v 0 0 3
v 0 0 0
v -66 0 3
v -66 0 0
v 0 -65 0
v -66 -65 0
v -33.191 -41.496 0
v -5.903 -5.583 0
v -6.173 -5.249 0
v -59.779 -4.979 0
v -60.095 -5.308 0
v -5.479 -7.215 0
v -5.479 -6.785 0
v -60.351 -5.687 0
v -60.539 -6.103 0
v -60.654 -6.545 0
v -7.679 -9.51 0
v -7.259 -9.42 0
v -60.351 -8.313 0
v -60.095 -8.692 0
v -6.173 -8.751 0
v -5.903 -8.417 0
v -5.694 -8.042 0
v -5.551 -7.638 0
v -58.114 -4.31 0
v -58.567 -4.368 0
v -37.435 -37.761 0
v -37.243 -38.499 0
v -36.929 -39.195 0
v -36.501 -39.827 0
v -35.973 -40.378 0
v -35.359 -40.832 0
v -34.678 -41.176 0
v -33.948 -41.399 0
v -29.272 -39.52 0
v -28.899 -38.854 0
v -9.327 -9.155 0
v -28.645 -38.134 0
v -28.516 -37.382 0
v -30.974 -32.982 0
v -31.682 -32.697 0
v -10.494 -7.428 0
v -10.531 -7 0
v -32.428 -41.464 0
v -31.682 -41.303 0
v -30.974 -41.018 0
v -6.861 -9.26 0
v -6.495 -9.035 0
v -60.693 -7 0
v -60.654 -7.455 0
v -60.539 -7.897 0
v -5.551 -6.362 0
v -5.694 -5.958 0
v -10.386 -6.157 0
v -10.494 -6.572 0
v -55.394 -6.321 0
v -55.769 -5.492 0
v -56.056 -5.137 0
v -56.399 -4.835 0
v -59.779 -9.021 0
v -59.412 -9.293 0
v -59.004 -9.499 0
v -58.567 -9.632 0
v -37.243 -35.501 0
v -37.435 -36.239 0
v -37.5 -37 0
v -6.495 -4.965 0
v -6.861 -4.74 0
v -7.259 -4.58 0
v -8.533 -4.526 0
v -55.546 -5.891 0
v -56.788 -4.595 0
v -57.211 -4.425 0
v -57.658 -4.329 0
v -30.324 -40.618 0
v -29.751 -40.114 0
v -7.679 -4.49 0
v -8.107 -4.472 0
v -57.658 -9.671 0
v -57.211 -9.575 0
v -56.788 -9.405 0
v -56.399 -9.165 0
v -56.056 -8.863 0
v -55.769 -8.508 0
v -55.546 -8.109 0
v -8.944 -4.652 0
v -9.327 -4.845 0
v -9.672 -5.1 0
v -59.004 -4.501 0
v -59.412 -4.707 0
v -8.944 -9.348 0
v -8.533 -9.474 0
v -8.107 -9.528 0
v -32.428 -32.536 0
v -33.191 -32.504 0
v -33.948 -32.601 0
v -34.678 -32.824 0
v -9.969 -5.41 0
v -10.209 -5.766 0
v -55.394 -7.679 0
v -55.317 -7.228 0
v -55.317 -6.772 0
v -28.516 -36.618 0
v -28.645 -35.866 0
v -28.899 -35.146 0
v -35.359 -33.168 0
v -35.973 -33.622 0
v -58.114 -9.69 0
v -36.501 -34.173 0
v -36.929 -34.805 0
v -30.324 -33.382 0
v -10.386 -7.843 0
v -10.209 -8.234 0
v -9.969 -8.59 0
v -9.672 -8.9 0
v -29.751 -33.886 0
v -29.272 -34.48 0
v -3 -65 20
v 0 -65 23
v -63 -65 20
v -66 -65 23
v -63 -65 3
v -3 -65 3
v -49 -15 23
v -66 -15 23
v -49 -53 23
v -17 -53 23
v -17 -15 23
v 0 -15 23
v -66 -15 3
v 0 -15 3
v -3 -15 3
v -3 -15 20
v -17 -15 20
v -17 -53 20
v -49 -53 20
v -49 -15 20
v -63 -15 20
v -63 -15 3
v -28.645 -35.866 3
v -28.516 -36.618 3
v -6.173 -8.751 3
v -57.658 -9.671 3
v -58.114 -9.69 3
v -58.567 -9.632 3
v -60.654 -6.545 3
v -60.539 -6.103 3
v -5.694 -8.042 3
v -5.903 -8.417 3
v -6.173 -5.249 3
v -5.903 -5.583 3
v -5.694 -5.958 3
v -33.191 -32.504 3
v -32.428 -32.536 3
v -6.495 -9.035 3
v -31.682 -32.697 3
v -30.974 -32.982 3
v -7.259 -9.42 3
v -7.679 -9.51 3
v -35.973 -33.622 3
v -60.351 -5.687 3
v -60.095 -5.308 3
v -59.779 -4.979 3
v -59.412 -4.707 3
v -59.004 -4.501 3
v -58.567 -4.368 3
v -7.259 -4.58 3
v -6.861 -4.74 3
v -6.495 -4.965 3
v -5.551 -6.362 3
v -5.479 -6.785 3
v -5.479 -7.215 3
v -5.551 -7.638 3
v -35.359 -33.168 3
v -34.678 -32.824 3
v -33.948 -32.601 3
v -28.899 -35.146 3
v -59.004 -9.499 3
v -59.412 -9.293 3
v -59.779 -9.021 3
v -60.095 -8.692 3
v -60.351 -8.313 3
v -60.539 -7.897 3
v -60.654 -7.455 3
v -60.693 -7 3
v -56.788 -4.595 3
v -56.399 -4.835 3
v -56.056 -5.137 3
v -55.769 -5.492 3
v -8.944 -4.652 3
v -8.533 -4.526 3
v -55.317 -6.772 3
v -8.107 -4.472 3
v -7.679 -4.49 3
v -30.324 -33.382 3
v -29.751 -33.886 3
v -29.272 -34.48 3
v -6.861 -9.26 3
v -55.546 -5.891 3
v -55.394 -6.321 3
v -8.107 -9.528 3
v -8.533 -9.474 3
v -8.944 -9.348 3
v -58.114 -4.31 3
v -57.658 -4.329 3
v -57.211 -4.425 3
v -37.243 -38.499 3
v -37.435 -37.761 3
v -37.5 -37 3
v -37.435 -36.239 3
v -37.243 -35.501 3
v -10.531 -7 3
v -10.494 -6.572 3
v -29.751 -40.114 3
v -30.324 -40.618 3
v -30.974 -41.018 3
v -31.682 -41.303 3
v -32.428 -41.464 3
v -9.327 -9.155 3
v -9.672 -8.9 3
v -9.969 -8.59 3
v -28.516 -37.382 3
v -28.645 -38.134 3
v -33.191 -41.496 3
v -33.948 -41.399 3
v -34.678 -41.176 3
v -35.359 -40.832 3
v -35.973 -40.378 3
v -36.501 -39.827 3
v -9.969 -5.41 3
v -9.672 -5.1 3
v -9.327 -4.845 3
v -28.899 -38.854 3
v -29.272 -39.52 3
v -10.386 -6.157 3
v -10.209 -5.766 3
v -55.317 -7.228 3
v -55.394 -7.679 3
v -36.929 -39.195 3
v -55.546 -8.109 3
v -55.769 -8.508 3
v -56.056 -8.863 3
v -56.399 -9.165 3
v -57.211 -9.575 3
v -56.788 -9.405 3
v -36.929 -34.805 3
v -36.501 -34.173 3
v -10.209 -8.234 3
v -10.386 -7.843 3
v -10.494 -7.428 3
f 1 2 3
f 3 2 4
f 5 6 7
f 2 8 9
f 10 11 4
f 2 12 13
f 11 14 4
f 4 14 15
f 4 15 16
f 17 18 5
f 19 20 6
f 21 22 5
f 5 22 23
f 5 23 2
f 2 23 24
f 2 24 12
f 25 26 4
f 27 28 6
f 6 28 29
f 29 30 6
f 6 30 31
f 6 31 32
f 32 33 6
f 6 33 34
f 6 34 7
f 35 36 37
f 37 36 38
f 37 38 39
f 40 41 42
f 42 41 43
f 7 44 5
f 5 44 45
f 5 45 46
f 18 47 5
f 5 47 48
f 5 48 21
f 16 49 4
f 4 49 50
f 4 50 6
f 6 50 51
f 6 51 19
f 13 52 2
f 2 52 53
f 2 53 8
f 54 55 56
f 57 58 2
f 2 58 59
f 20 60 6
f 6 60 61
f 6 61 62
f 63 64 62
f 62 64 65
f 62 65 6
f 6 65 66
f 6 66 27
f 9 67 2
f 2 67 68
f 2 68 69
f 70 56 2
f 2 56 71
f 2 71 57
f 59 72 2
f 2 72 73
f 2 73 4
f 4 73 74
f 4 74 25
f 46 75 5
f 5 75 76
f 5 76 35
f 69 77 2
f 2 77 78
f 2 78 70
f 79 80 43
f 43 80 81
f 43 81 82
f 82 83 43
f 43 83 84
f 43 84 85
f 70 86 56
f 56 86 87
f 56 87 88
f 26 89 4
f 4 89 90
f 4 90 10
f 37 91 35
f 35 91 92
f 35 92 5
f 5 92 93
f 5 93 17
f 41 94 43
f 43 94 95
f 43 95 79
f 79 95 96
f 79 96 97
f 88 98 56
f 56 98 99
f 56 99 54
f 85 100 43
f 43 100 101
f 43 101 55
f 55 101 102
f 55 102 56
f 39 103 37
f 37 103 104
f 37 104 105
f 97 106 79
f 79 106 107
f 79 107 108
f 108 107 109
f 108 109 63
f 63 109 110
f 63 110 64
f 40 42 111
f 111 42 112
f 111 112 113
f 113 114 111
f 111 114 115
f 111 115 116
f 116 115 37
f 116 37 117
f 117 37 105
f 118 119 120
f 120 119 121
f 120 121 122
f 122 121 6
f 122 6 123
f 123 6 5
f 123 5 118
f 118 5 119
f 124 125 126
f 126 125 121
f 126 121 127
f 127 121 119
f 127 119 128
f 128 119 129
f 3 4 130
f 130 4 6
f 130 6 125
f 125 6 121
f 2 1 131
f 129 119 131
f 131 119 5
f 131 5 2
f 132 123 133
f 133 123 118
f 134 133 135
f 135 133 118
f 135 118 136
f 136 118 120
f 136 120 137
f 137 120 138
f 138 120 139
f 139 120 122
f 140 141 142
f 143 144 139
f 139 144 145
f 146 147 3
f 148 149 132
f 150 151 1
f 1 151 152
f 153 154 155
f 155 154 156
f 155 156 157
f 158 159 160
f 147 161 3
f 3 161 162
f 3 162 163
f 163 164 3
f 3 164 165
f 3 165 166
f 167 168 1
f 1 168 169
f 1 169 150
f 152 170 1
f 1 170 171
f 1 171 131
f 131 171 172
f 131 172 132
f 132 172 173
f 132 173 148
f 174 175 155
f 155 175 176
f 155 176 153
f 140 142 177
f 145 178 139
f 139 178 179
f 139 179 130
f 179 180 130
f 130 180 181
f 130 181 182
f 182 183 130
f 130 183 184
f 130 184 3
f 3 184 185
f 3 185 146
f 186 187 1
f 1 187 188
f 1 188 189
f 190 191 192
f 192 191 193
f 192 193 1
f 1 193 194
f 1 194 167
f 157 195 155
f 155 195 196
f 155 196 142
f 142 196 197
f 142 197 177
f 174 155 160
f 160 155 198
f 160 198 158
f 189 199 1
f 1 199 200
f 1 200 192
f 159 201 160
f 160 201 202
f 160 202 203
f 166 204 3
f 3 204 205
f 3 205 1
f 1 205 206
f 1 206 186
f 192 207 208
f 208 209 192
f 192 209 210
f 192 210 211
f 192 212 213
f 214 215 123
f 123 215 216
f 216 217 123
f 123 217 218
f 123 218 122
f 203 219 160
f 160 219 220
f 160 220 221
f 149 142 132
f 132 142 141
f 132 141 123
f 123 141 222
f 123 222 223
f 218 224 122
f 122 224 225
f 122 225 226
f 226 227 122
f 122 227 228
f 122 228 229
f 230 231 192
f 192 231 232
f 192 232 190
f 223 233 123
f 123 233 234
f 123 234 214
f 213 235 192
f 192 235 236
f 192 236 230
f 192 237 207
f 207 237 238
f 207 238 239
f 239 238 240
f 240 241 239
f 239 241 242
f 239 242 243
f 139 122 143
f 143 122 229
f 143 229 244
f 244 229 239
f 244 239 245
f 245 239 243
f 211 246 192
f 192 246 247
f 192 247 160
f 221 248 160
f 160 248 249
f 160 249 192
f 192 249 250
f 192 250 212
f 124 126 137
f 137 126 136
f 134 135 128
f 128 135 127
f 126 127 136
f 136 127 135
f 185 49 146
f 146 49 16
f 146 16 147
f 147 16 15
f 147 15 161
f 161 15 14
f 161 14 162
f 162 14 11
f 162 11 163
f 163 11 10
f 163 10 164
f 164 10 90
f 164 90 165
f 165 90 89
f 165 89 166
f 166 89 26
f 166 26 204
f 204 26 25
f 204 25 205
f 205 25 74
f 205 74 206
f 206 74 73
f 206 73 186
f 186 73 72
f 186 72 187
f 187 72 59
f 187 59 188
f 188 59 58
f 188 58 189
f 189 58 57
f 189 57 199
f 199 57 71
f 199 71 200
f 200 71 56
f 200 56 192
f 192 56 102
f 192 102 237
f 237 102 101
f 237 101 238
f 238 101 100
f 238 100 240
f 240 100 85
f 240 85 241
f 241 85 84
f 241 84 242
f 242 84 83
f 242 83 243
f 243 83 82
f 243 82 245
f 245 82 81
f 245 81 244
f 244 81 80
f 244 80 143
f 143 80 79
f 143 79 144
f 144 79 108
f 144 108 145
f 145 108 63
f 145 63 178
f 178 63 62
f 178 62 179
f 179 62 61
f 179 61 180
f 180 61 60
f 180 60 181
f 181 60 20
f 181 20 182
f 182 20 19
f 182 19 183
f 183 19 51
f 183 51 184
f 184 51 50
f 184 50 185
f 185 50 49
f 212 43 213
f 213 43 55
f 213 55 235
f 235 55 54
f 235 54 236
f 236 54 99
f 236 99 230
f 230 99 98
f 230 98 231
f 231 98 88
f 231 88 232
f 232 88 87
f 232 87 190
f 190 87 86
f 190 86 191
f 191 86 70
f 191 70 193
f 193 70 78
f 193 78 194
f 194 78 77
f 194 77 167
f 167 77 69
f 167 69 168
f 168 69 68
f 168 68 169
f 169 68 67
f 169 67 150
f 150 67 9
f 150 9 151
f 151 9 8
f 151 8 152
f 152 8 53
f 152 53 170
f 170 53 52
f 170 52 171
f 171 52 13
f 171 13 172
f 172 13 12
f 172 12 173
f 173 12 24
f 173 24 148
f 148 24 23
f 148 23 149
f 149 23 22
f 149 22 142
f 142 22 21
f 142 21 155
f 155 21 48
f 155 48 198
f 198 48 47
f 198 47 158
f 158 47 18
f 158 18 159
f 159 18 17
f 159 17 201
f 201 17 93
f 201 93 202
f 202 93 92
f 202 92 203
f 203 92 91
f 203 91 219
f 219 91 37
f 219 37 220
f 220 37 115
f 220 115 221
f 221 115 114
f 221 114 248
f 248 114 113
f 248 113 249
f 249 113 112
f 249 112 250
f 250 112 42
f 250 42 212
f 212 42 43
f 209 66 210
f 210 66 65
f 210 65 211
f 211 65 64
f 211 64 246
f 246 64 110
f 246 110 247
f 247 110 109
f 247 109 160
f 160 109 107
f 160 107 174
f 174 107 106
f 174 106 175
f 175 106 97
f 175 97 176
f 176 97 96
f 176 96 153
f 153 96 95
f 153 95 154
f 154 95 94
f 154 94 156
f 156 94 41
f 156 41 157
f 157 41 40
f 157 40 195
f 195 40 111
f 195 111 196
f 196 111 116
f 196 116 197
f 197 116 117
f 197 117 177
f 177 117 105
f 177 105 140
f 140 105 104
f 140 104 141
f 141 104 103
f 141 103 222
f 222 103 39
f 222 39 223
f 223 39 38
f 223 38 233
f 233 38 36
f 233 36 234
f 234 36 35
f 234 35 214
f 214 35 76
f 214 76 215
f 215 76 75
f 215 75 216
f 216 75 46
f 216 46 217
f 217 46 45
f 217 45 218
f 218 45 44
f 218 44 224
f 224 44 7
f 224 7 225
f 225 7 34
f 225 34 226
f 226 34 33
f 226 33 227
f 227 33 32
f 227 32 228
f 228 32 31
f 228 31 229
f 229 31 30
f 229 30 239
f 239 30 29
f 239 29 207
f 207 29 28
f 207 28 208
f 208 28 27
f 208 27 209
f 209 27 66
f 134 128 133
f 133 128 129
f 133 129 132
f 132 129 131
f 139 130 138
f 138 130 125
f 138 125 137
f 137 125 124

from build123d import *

# Parameters (mm, degrees)
SKETCH1_W           = 23
SKETCH1_H           = 65
BOSS_EXTRUDE1_DEPTH = 66
SKETCH2_W           = 60
SKETCH2_H           = 17
CUT_EXTRUDE1_DEPTH  = 66
CUT_EXTRUDE2_REACH  = 25
SKETCH3_W           = 32
SKETCH3_H           = 53
CUT_EXTRUDE3_REACH  = 25
SKETCH5_R           = 4.5
SKETCH5_R_2         = 2.530586218
SKETCH5_R_3         = 2.69284222
SKETCH6_W           = 17
SKETCH6_H           = 15
CUT_EXTRUDE4_DEPTH  = 20


with BuildPart() as part:
    # Sketch1 → Boss-Extrude1 (new body)
    with BuildSketch(Plane(origin=(0, 0, 0), x_dir=(0, 0, -1), z_dir=(1, 0, 0))):
        with Locations((-11.5, -32.5)):
            Rectangle(SKETCH1_W, SKETCH1_H)
    extrude(amount=-BOSS_EXTRUDE1_DEPTH)

    # Sketch2 → Cut-Extrude1 (cut, through all)
    with BuildSketch(Plane(origin=(0, 0, 0), x_dir=(1, 0, 0), z_dir=(0, 1, 0))):
        with Locations((-33, -11.5)):
            Rectangle(SKETCH2_W, SKETCH2_H)
    extrude(amount=-CUT_EXTRUDE1_DEPTH, mode=Mode.SUBTRACT)

    # Sketch3 → Cut-Extrude2 (cut, up to next)
    with BuildSketch(Plane.XY.offset(23), mode=Mode.PRIVATE) as cut_extrude2_sk1:
        with Locations((-33, -26.5)):
            Rectangle(SKETCH3_W, SKETCH3_H)
    cut_extrude2_tool1 = extrude(cut_extrude2_sk1.sketch, amount=-CUT_EXTRUDE2_REACH, mode=Mode.PRIVATE) & part.part
    add(cut_extrude2_tool1.solids().sort_by_distance((-33, -26.5, 23))[0], mode=Mode.SUBTRACT)

    # Sketch5 → Cut-Extrude3 (cut, up to next)
    with BuildSketch(Plane(origin=(0, 0, 0), x_dir=(-1, 0, 0), z_dir=(0, 0, -1)), mode=Mode.PRIVATE) as cut_extrude3_sk1:
        with Locations((33, -37)):
            Circle(SKETCH5_R)
    cut_extrude3_tool1 = extrude(cut_extrude3_sk1.sketch, amount=-CUT_EXTRUDE3_REACH, mode=Mode.PRIVATE) & part.part
    add(cut_extrude3_tool1.solids().sort_by_distance((-33, -37, 0))[0], mode=Mode.SUBTRACT)
    # Sketch5 → Cut-Extrude3 (cut, up to next)
    with BuildSketch(Plane(origin=(0, 0, 0), x_dir=(-1, 0, 0), z_dir=(0, 0, -1)), mode=Mode.PRIVATE) as cut_extrude3_sk2:
        with Locations((8, -7)):
            Circle(SKETCH5_R_2)
    cut_extrude3_tool2 = extrude(cut_extrude3_sk2.sketch, amount=-CUT_EXTRUDE3_REACH, mode=Mode.PRIVATE) & part.part
    add(cut_extrude3_tool2.solids().sort_by_distance((-8, -7, 0))[0], mode=Mode.SUBTRACT)
    # Sketch5 → Cut-Extrude3 (cut, up to next)
    with BuildSketch(Plane(origin=(0, 0, 0), x_dir=(-1, 0, 0), z_dir=(0, 0, -1)), mode=Mode.PRIVATE) as cut_extrude3_sk3:
        with Locations((58, -7)):
            Circle(SKETCH5_R_3)
    cut_extrude3_tool3 = extrude(cut_extrude3_sk3.sketch, amount=-CUT_EXTRUDE3_REACH, mode=Mode.PRIVATE) & part.part
    add(cut_extrude3_tool3.solids().sort_by_distance((-58, -7, 0))[0], mode=Mode.SUBTRACT)

    # Sketch6 → Cut-Extrude4 (cut)
    with BuildSketch(Plane.XY.offset(23)):
        with Locations((-57.5, -7.5)):
            Rectangle(SKETCH6_W, SKETCH6_H)
        with Locations((-8.5, -7.5)):
            Rectangle(SKETCH6_W, SKETCH6_H)
    extrude(amount=-CUT_EXTRUDE4_DEPTH, mode=Mode.SUBTRACT)


solid = part.part
